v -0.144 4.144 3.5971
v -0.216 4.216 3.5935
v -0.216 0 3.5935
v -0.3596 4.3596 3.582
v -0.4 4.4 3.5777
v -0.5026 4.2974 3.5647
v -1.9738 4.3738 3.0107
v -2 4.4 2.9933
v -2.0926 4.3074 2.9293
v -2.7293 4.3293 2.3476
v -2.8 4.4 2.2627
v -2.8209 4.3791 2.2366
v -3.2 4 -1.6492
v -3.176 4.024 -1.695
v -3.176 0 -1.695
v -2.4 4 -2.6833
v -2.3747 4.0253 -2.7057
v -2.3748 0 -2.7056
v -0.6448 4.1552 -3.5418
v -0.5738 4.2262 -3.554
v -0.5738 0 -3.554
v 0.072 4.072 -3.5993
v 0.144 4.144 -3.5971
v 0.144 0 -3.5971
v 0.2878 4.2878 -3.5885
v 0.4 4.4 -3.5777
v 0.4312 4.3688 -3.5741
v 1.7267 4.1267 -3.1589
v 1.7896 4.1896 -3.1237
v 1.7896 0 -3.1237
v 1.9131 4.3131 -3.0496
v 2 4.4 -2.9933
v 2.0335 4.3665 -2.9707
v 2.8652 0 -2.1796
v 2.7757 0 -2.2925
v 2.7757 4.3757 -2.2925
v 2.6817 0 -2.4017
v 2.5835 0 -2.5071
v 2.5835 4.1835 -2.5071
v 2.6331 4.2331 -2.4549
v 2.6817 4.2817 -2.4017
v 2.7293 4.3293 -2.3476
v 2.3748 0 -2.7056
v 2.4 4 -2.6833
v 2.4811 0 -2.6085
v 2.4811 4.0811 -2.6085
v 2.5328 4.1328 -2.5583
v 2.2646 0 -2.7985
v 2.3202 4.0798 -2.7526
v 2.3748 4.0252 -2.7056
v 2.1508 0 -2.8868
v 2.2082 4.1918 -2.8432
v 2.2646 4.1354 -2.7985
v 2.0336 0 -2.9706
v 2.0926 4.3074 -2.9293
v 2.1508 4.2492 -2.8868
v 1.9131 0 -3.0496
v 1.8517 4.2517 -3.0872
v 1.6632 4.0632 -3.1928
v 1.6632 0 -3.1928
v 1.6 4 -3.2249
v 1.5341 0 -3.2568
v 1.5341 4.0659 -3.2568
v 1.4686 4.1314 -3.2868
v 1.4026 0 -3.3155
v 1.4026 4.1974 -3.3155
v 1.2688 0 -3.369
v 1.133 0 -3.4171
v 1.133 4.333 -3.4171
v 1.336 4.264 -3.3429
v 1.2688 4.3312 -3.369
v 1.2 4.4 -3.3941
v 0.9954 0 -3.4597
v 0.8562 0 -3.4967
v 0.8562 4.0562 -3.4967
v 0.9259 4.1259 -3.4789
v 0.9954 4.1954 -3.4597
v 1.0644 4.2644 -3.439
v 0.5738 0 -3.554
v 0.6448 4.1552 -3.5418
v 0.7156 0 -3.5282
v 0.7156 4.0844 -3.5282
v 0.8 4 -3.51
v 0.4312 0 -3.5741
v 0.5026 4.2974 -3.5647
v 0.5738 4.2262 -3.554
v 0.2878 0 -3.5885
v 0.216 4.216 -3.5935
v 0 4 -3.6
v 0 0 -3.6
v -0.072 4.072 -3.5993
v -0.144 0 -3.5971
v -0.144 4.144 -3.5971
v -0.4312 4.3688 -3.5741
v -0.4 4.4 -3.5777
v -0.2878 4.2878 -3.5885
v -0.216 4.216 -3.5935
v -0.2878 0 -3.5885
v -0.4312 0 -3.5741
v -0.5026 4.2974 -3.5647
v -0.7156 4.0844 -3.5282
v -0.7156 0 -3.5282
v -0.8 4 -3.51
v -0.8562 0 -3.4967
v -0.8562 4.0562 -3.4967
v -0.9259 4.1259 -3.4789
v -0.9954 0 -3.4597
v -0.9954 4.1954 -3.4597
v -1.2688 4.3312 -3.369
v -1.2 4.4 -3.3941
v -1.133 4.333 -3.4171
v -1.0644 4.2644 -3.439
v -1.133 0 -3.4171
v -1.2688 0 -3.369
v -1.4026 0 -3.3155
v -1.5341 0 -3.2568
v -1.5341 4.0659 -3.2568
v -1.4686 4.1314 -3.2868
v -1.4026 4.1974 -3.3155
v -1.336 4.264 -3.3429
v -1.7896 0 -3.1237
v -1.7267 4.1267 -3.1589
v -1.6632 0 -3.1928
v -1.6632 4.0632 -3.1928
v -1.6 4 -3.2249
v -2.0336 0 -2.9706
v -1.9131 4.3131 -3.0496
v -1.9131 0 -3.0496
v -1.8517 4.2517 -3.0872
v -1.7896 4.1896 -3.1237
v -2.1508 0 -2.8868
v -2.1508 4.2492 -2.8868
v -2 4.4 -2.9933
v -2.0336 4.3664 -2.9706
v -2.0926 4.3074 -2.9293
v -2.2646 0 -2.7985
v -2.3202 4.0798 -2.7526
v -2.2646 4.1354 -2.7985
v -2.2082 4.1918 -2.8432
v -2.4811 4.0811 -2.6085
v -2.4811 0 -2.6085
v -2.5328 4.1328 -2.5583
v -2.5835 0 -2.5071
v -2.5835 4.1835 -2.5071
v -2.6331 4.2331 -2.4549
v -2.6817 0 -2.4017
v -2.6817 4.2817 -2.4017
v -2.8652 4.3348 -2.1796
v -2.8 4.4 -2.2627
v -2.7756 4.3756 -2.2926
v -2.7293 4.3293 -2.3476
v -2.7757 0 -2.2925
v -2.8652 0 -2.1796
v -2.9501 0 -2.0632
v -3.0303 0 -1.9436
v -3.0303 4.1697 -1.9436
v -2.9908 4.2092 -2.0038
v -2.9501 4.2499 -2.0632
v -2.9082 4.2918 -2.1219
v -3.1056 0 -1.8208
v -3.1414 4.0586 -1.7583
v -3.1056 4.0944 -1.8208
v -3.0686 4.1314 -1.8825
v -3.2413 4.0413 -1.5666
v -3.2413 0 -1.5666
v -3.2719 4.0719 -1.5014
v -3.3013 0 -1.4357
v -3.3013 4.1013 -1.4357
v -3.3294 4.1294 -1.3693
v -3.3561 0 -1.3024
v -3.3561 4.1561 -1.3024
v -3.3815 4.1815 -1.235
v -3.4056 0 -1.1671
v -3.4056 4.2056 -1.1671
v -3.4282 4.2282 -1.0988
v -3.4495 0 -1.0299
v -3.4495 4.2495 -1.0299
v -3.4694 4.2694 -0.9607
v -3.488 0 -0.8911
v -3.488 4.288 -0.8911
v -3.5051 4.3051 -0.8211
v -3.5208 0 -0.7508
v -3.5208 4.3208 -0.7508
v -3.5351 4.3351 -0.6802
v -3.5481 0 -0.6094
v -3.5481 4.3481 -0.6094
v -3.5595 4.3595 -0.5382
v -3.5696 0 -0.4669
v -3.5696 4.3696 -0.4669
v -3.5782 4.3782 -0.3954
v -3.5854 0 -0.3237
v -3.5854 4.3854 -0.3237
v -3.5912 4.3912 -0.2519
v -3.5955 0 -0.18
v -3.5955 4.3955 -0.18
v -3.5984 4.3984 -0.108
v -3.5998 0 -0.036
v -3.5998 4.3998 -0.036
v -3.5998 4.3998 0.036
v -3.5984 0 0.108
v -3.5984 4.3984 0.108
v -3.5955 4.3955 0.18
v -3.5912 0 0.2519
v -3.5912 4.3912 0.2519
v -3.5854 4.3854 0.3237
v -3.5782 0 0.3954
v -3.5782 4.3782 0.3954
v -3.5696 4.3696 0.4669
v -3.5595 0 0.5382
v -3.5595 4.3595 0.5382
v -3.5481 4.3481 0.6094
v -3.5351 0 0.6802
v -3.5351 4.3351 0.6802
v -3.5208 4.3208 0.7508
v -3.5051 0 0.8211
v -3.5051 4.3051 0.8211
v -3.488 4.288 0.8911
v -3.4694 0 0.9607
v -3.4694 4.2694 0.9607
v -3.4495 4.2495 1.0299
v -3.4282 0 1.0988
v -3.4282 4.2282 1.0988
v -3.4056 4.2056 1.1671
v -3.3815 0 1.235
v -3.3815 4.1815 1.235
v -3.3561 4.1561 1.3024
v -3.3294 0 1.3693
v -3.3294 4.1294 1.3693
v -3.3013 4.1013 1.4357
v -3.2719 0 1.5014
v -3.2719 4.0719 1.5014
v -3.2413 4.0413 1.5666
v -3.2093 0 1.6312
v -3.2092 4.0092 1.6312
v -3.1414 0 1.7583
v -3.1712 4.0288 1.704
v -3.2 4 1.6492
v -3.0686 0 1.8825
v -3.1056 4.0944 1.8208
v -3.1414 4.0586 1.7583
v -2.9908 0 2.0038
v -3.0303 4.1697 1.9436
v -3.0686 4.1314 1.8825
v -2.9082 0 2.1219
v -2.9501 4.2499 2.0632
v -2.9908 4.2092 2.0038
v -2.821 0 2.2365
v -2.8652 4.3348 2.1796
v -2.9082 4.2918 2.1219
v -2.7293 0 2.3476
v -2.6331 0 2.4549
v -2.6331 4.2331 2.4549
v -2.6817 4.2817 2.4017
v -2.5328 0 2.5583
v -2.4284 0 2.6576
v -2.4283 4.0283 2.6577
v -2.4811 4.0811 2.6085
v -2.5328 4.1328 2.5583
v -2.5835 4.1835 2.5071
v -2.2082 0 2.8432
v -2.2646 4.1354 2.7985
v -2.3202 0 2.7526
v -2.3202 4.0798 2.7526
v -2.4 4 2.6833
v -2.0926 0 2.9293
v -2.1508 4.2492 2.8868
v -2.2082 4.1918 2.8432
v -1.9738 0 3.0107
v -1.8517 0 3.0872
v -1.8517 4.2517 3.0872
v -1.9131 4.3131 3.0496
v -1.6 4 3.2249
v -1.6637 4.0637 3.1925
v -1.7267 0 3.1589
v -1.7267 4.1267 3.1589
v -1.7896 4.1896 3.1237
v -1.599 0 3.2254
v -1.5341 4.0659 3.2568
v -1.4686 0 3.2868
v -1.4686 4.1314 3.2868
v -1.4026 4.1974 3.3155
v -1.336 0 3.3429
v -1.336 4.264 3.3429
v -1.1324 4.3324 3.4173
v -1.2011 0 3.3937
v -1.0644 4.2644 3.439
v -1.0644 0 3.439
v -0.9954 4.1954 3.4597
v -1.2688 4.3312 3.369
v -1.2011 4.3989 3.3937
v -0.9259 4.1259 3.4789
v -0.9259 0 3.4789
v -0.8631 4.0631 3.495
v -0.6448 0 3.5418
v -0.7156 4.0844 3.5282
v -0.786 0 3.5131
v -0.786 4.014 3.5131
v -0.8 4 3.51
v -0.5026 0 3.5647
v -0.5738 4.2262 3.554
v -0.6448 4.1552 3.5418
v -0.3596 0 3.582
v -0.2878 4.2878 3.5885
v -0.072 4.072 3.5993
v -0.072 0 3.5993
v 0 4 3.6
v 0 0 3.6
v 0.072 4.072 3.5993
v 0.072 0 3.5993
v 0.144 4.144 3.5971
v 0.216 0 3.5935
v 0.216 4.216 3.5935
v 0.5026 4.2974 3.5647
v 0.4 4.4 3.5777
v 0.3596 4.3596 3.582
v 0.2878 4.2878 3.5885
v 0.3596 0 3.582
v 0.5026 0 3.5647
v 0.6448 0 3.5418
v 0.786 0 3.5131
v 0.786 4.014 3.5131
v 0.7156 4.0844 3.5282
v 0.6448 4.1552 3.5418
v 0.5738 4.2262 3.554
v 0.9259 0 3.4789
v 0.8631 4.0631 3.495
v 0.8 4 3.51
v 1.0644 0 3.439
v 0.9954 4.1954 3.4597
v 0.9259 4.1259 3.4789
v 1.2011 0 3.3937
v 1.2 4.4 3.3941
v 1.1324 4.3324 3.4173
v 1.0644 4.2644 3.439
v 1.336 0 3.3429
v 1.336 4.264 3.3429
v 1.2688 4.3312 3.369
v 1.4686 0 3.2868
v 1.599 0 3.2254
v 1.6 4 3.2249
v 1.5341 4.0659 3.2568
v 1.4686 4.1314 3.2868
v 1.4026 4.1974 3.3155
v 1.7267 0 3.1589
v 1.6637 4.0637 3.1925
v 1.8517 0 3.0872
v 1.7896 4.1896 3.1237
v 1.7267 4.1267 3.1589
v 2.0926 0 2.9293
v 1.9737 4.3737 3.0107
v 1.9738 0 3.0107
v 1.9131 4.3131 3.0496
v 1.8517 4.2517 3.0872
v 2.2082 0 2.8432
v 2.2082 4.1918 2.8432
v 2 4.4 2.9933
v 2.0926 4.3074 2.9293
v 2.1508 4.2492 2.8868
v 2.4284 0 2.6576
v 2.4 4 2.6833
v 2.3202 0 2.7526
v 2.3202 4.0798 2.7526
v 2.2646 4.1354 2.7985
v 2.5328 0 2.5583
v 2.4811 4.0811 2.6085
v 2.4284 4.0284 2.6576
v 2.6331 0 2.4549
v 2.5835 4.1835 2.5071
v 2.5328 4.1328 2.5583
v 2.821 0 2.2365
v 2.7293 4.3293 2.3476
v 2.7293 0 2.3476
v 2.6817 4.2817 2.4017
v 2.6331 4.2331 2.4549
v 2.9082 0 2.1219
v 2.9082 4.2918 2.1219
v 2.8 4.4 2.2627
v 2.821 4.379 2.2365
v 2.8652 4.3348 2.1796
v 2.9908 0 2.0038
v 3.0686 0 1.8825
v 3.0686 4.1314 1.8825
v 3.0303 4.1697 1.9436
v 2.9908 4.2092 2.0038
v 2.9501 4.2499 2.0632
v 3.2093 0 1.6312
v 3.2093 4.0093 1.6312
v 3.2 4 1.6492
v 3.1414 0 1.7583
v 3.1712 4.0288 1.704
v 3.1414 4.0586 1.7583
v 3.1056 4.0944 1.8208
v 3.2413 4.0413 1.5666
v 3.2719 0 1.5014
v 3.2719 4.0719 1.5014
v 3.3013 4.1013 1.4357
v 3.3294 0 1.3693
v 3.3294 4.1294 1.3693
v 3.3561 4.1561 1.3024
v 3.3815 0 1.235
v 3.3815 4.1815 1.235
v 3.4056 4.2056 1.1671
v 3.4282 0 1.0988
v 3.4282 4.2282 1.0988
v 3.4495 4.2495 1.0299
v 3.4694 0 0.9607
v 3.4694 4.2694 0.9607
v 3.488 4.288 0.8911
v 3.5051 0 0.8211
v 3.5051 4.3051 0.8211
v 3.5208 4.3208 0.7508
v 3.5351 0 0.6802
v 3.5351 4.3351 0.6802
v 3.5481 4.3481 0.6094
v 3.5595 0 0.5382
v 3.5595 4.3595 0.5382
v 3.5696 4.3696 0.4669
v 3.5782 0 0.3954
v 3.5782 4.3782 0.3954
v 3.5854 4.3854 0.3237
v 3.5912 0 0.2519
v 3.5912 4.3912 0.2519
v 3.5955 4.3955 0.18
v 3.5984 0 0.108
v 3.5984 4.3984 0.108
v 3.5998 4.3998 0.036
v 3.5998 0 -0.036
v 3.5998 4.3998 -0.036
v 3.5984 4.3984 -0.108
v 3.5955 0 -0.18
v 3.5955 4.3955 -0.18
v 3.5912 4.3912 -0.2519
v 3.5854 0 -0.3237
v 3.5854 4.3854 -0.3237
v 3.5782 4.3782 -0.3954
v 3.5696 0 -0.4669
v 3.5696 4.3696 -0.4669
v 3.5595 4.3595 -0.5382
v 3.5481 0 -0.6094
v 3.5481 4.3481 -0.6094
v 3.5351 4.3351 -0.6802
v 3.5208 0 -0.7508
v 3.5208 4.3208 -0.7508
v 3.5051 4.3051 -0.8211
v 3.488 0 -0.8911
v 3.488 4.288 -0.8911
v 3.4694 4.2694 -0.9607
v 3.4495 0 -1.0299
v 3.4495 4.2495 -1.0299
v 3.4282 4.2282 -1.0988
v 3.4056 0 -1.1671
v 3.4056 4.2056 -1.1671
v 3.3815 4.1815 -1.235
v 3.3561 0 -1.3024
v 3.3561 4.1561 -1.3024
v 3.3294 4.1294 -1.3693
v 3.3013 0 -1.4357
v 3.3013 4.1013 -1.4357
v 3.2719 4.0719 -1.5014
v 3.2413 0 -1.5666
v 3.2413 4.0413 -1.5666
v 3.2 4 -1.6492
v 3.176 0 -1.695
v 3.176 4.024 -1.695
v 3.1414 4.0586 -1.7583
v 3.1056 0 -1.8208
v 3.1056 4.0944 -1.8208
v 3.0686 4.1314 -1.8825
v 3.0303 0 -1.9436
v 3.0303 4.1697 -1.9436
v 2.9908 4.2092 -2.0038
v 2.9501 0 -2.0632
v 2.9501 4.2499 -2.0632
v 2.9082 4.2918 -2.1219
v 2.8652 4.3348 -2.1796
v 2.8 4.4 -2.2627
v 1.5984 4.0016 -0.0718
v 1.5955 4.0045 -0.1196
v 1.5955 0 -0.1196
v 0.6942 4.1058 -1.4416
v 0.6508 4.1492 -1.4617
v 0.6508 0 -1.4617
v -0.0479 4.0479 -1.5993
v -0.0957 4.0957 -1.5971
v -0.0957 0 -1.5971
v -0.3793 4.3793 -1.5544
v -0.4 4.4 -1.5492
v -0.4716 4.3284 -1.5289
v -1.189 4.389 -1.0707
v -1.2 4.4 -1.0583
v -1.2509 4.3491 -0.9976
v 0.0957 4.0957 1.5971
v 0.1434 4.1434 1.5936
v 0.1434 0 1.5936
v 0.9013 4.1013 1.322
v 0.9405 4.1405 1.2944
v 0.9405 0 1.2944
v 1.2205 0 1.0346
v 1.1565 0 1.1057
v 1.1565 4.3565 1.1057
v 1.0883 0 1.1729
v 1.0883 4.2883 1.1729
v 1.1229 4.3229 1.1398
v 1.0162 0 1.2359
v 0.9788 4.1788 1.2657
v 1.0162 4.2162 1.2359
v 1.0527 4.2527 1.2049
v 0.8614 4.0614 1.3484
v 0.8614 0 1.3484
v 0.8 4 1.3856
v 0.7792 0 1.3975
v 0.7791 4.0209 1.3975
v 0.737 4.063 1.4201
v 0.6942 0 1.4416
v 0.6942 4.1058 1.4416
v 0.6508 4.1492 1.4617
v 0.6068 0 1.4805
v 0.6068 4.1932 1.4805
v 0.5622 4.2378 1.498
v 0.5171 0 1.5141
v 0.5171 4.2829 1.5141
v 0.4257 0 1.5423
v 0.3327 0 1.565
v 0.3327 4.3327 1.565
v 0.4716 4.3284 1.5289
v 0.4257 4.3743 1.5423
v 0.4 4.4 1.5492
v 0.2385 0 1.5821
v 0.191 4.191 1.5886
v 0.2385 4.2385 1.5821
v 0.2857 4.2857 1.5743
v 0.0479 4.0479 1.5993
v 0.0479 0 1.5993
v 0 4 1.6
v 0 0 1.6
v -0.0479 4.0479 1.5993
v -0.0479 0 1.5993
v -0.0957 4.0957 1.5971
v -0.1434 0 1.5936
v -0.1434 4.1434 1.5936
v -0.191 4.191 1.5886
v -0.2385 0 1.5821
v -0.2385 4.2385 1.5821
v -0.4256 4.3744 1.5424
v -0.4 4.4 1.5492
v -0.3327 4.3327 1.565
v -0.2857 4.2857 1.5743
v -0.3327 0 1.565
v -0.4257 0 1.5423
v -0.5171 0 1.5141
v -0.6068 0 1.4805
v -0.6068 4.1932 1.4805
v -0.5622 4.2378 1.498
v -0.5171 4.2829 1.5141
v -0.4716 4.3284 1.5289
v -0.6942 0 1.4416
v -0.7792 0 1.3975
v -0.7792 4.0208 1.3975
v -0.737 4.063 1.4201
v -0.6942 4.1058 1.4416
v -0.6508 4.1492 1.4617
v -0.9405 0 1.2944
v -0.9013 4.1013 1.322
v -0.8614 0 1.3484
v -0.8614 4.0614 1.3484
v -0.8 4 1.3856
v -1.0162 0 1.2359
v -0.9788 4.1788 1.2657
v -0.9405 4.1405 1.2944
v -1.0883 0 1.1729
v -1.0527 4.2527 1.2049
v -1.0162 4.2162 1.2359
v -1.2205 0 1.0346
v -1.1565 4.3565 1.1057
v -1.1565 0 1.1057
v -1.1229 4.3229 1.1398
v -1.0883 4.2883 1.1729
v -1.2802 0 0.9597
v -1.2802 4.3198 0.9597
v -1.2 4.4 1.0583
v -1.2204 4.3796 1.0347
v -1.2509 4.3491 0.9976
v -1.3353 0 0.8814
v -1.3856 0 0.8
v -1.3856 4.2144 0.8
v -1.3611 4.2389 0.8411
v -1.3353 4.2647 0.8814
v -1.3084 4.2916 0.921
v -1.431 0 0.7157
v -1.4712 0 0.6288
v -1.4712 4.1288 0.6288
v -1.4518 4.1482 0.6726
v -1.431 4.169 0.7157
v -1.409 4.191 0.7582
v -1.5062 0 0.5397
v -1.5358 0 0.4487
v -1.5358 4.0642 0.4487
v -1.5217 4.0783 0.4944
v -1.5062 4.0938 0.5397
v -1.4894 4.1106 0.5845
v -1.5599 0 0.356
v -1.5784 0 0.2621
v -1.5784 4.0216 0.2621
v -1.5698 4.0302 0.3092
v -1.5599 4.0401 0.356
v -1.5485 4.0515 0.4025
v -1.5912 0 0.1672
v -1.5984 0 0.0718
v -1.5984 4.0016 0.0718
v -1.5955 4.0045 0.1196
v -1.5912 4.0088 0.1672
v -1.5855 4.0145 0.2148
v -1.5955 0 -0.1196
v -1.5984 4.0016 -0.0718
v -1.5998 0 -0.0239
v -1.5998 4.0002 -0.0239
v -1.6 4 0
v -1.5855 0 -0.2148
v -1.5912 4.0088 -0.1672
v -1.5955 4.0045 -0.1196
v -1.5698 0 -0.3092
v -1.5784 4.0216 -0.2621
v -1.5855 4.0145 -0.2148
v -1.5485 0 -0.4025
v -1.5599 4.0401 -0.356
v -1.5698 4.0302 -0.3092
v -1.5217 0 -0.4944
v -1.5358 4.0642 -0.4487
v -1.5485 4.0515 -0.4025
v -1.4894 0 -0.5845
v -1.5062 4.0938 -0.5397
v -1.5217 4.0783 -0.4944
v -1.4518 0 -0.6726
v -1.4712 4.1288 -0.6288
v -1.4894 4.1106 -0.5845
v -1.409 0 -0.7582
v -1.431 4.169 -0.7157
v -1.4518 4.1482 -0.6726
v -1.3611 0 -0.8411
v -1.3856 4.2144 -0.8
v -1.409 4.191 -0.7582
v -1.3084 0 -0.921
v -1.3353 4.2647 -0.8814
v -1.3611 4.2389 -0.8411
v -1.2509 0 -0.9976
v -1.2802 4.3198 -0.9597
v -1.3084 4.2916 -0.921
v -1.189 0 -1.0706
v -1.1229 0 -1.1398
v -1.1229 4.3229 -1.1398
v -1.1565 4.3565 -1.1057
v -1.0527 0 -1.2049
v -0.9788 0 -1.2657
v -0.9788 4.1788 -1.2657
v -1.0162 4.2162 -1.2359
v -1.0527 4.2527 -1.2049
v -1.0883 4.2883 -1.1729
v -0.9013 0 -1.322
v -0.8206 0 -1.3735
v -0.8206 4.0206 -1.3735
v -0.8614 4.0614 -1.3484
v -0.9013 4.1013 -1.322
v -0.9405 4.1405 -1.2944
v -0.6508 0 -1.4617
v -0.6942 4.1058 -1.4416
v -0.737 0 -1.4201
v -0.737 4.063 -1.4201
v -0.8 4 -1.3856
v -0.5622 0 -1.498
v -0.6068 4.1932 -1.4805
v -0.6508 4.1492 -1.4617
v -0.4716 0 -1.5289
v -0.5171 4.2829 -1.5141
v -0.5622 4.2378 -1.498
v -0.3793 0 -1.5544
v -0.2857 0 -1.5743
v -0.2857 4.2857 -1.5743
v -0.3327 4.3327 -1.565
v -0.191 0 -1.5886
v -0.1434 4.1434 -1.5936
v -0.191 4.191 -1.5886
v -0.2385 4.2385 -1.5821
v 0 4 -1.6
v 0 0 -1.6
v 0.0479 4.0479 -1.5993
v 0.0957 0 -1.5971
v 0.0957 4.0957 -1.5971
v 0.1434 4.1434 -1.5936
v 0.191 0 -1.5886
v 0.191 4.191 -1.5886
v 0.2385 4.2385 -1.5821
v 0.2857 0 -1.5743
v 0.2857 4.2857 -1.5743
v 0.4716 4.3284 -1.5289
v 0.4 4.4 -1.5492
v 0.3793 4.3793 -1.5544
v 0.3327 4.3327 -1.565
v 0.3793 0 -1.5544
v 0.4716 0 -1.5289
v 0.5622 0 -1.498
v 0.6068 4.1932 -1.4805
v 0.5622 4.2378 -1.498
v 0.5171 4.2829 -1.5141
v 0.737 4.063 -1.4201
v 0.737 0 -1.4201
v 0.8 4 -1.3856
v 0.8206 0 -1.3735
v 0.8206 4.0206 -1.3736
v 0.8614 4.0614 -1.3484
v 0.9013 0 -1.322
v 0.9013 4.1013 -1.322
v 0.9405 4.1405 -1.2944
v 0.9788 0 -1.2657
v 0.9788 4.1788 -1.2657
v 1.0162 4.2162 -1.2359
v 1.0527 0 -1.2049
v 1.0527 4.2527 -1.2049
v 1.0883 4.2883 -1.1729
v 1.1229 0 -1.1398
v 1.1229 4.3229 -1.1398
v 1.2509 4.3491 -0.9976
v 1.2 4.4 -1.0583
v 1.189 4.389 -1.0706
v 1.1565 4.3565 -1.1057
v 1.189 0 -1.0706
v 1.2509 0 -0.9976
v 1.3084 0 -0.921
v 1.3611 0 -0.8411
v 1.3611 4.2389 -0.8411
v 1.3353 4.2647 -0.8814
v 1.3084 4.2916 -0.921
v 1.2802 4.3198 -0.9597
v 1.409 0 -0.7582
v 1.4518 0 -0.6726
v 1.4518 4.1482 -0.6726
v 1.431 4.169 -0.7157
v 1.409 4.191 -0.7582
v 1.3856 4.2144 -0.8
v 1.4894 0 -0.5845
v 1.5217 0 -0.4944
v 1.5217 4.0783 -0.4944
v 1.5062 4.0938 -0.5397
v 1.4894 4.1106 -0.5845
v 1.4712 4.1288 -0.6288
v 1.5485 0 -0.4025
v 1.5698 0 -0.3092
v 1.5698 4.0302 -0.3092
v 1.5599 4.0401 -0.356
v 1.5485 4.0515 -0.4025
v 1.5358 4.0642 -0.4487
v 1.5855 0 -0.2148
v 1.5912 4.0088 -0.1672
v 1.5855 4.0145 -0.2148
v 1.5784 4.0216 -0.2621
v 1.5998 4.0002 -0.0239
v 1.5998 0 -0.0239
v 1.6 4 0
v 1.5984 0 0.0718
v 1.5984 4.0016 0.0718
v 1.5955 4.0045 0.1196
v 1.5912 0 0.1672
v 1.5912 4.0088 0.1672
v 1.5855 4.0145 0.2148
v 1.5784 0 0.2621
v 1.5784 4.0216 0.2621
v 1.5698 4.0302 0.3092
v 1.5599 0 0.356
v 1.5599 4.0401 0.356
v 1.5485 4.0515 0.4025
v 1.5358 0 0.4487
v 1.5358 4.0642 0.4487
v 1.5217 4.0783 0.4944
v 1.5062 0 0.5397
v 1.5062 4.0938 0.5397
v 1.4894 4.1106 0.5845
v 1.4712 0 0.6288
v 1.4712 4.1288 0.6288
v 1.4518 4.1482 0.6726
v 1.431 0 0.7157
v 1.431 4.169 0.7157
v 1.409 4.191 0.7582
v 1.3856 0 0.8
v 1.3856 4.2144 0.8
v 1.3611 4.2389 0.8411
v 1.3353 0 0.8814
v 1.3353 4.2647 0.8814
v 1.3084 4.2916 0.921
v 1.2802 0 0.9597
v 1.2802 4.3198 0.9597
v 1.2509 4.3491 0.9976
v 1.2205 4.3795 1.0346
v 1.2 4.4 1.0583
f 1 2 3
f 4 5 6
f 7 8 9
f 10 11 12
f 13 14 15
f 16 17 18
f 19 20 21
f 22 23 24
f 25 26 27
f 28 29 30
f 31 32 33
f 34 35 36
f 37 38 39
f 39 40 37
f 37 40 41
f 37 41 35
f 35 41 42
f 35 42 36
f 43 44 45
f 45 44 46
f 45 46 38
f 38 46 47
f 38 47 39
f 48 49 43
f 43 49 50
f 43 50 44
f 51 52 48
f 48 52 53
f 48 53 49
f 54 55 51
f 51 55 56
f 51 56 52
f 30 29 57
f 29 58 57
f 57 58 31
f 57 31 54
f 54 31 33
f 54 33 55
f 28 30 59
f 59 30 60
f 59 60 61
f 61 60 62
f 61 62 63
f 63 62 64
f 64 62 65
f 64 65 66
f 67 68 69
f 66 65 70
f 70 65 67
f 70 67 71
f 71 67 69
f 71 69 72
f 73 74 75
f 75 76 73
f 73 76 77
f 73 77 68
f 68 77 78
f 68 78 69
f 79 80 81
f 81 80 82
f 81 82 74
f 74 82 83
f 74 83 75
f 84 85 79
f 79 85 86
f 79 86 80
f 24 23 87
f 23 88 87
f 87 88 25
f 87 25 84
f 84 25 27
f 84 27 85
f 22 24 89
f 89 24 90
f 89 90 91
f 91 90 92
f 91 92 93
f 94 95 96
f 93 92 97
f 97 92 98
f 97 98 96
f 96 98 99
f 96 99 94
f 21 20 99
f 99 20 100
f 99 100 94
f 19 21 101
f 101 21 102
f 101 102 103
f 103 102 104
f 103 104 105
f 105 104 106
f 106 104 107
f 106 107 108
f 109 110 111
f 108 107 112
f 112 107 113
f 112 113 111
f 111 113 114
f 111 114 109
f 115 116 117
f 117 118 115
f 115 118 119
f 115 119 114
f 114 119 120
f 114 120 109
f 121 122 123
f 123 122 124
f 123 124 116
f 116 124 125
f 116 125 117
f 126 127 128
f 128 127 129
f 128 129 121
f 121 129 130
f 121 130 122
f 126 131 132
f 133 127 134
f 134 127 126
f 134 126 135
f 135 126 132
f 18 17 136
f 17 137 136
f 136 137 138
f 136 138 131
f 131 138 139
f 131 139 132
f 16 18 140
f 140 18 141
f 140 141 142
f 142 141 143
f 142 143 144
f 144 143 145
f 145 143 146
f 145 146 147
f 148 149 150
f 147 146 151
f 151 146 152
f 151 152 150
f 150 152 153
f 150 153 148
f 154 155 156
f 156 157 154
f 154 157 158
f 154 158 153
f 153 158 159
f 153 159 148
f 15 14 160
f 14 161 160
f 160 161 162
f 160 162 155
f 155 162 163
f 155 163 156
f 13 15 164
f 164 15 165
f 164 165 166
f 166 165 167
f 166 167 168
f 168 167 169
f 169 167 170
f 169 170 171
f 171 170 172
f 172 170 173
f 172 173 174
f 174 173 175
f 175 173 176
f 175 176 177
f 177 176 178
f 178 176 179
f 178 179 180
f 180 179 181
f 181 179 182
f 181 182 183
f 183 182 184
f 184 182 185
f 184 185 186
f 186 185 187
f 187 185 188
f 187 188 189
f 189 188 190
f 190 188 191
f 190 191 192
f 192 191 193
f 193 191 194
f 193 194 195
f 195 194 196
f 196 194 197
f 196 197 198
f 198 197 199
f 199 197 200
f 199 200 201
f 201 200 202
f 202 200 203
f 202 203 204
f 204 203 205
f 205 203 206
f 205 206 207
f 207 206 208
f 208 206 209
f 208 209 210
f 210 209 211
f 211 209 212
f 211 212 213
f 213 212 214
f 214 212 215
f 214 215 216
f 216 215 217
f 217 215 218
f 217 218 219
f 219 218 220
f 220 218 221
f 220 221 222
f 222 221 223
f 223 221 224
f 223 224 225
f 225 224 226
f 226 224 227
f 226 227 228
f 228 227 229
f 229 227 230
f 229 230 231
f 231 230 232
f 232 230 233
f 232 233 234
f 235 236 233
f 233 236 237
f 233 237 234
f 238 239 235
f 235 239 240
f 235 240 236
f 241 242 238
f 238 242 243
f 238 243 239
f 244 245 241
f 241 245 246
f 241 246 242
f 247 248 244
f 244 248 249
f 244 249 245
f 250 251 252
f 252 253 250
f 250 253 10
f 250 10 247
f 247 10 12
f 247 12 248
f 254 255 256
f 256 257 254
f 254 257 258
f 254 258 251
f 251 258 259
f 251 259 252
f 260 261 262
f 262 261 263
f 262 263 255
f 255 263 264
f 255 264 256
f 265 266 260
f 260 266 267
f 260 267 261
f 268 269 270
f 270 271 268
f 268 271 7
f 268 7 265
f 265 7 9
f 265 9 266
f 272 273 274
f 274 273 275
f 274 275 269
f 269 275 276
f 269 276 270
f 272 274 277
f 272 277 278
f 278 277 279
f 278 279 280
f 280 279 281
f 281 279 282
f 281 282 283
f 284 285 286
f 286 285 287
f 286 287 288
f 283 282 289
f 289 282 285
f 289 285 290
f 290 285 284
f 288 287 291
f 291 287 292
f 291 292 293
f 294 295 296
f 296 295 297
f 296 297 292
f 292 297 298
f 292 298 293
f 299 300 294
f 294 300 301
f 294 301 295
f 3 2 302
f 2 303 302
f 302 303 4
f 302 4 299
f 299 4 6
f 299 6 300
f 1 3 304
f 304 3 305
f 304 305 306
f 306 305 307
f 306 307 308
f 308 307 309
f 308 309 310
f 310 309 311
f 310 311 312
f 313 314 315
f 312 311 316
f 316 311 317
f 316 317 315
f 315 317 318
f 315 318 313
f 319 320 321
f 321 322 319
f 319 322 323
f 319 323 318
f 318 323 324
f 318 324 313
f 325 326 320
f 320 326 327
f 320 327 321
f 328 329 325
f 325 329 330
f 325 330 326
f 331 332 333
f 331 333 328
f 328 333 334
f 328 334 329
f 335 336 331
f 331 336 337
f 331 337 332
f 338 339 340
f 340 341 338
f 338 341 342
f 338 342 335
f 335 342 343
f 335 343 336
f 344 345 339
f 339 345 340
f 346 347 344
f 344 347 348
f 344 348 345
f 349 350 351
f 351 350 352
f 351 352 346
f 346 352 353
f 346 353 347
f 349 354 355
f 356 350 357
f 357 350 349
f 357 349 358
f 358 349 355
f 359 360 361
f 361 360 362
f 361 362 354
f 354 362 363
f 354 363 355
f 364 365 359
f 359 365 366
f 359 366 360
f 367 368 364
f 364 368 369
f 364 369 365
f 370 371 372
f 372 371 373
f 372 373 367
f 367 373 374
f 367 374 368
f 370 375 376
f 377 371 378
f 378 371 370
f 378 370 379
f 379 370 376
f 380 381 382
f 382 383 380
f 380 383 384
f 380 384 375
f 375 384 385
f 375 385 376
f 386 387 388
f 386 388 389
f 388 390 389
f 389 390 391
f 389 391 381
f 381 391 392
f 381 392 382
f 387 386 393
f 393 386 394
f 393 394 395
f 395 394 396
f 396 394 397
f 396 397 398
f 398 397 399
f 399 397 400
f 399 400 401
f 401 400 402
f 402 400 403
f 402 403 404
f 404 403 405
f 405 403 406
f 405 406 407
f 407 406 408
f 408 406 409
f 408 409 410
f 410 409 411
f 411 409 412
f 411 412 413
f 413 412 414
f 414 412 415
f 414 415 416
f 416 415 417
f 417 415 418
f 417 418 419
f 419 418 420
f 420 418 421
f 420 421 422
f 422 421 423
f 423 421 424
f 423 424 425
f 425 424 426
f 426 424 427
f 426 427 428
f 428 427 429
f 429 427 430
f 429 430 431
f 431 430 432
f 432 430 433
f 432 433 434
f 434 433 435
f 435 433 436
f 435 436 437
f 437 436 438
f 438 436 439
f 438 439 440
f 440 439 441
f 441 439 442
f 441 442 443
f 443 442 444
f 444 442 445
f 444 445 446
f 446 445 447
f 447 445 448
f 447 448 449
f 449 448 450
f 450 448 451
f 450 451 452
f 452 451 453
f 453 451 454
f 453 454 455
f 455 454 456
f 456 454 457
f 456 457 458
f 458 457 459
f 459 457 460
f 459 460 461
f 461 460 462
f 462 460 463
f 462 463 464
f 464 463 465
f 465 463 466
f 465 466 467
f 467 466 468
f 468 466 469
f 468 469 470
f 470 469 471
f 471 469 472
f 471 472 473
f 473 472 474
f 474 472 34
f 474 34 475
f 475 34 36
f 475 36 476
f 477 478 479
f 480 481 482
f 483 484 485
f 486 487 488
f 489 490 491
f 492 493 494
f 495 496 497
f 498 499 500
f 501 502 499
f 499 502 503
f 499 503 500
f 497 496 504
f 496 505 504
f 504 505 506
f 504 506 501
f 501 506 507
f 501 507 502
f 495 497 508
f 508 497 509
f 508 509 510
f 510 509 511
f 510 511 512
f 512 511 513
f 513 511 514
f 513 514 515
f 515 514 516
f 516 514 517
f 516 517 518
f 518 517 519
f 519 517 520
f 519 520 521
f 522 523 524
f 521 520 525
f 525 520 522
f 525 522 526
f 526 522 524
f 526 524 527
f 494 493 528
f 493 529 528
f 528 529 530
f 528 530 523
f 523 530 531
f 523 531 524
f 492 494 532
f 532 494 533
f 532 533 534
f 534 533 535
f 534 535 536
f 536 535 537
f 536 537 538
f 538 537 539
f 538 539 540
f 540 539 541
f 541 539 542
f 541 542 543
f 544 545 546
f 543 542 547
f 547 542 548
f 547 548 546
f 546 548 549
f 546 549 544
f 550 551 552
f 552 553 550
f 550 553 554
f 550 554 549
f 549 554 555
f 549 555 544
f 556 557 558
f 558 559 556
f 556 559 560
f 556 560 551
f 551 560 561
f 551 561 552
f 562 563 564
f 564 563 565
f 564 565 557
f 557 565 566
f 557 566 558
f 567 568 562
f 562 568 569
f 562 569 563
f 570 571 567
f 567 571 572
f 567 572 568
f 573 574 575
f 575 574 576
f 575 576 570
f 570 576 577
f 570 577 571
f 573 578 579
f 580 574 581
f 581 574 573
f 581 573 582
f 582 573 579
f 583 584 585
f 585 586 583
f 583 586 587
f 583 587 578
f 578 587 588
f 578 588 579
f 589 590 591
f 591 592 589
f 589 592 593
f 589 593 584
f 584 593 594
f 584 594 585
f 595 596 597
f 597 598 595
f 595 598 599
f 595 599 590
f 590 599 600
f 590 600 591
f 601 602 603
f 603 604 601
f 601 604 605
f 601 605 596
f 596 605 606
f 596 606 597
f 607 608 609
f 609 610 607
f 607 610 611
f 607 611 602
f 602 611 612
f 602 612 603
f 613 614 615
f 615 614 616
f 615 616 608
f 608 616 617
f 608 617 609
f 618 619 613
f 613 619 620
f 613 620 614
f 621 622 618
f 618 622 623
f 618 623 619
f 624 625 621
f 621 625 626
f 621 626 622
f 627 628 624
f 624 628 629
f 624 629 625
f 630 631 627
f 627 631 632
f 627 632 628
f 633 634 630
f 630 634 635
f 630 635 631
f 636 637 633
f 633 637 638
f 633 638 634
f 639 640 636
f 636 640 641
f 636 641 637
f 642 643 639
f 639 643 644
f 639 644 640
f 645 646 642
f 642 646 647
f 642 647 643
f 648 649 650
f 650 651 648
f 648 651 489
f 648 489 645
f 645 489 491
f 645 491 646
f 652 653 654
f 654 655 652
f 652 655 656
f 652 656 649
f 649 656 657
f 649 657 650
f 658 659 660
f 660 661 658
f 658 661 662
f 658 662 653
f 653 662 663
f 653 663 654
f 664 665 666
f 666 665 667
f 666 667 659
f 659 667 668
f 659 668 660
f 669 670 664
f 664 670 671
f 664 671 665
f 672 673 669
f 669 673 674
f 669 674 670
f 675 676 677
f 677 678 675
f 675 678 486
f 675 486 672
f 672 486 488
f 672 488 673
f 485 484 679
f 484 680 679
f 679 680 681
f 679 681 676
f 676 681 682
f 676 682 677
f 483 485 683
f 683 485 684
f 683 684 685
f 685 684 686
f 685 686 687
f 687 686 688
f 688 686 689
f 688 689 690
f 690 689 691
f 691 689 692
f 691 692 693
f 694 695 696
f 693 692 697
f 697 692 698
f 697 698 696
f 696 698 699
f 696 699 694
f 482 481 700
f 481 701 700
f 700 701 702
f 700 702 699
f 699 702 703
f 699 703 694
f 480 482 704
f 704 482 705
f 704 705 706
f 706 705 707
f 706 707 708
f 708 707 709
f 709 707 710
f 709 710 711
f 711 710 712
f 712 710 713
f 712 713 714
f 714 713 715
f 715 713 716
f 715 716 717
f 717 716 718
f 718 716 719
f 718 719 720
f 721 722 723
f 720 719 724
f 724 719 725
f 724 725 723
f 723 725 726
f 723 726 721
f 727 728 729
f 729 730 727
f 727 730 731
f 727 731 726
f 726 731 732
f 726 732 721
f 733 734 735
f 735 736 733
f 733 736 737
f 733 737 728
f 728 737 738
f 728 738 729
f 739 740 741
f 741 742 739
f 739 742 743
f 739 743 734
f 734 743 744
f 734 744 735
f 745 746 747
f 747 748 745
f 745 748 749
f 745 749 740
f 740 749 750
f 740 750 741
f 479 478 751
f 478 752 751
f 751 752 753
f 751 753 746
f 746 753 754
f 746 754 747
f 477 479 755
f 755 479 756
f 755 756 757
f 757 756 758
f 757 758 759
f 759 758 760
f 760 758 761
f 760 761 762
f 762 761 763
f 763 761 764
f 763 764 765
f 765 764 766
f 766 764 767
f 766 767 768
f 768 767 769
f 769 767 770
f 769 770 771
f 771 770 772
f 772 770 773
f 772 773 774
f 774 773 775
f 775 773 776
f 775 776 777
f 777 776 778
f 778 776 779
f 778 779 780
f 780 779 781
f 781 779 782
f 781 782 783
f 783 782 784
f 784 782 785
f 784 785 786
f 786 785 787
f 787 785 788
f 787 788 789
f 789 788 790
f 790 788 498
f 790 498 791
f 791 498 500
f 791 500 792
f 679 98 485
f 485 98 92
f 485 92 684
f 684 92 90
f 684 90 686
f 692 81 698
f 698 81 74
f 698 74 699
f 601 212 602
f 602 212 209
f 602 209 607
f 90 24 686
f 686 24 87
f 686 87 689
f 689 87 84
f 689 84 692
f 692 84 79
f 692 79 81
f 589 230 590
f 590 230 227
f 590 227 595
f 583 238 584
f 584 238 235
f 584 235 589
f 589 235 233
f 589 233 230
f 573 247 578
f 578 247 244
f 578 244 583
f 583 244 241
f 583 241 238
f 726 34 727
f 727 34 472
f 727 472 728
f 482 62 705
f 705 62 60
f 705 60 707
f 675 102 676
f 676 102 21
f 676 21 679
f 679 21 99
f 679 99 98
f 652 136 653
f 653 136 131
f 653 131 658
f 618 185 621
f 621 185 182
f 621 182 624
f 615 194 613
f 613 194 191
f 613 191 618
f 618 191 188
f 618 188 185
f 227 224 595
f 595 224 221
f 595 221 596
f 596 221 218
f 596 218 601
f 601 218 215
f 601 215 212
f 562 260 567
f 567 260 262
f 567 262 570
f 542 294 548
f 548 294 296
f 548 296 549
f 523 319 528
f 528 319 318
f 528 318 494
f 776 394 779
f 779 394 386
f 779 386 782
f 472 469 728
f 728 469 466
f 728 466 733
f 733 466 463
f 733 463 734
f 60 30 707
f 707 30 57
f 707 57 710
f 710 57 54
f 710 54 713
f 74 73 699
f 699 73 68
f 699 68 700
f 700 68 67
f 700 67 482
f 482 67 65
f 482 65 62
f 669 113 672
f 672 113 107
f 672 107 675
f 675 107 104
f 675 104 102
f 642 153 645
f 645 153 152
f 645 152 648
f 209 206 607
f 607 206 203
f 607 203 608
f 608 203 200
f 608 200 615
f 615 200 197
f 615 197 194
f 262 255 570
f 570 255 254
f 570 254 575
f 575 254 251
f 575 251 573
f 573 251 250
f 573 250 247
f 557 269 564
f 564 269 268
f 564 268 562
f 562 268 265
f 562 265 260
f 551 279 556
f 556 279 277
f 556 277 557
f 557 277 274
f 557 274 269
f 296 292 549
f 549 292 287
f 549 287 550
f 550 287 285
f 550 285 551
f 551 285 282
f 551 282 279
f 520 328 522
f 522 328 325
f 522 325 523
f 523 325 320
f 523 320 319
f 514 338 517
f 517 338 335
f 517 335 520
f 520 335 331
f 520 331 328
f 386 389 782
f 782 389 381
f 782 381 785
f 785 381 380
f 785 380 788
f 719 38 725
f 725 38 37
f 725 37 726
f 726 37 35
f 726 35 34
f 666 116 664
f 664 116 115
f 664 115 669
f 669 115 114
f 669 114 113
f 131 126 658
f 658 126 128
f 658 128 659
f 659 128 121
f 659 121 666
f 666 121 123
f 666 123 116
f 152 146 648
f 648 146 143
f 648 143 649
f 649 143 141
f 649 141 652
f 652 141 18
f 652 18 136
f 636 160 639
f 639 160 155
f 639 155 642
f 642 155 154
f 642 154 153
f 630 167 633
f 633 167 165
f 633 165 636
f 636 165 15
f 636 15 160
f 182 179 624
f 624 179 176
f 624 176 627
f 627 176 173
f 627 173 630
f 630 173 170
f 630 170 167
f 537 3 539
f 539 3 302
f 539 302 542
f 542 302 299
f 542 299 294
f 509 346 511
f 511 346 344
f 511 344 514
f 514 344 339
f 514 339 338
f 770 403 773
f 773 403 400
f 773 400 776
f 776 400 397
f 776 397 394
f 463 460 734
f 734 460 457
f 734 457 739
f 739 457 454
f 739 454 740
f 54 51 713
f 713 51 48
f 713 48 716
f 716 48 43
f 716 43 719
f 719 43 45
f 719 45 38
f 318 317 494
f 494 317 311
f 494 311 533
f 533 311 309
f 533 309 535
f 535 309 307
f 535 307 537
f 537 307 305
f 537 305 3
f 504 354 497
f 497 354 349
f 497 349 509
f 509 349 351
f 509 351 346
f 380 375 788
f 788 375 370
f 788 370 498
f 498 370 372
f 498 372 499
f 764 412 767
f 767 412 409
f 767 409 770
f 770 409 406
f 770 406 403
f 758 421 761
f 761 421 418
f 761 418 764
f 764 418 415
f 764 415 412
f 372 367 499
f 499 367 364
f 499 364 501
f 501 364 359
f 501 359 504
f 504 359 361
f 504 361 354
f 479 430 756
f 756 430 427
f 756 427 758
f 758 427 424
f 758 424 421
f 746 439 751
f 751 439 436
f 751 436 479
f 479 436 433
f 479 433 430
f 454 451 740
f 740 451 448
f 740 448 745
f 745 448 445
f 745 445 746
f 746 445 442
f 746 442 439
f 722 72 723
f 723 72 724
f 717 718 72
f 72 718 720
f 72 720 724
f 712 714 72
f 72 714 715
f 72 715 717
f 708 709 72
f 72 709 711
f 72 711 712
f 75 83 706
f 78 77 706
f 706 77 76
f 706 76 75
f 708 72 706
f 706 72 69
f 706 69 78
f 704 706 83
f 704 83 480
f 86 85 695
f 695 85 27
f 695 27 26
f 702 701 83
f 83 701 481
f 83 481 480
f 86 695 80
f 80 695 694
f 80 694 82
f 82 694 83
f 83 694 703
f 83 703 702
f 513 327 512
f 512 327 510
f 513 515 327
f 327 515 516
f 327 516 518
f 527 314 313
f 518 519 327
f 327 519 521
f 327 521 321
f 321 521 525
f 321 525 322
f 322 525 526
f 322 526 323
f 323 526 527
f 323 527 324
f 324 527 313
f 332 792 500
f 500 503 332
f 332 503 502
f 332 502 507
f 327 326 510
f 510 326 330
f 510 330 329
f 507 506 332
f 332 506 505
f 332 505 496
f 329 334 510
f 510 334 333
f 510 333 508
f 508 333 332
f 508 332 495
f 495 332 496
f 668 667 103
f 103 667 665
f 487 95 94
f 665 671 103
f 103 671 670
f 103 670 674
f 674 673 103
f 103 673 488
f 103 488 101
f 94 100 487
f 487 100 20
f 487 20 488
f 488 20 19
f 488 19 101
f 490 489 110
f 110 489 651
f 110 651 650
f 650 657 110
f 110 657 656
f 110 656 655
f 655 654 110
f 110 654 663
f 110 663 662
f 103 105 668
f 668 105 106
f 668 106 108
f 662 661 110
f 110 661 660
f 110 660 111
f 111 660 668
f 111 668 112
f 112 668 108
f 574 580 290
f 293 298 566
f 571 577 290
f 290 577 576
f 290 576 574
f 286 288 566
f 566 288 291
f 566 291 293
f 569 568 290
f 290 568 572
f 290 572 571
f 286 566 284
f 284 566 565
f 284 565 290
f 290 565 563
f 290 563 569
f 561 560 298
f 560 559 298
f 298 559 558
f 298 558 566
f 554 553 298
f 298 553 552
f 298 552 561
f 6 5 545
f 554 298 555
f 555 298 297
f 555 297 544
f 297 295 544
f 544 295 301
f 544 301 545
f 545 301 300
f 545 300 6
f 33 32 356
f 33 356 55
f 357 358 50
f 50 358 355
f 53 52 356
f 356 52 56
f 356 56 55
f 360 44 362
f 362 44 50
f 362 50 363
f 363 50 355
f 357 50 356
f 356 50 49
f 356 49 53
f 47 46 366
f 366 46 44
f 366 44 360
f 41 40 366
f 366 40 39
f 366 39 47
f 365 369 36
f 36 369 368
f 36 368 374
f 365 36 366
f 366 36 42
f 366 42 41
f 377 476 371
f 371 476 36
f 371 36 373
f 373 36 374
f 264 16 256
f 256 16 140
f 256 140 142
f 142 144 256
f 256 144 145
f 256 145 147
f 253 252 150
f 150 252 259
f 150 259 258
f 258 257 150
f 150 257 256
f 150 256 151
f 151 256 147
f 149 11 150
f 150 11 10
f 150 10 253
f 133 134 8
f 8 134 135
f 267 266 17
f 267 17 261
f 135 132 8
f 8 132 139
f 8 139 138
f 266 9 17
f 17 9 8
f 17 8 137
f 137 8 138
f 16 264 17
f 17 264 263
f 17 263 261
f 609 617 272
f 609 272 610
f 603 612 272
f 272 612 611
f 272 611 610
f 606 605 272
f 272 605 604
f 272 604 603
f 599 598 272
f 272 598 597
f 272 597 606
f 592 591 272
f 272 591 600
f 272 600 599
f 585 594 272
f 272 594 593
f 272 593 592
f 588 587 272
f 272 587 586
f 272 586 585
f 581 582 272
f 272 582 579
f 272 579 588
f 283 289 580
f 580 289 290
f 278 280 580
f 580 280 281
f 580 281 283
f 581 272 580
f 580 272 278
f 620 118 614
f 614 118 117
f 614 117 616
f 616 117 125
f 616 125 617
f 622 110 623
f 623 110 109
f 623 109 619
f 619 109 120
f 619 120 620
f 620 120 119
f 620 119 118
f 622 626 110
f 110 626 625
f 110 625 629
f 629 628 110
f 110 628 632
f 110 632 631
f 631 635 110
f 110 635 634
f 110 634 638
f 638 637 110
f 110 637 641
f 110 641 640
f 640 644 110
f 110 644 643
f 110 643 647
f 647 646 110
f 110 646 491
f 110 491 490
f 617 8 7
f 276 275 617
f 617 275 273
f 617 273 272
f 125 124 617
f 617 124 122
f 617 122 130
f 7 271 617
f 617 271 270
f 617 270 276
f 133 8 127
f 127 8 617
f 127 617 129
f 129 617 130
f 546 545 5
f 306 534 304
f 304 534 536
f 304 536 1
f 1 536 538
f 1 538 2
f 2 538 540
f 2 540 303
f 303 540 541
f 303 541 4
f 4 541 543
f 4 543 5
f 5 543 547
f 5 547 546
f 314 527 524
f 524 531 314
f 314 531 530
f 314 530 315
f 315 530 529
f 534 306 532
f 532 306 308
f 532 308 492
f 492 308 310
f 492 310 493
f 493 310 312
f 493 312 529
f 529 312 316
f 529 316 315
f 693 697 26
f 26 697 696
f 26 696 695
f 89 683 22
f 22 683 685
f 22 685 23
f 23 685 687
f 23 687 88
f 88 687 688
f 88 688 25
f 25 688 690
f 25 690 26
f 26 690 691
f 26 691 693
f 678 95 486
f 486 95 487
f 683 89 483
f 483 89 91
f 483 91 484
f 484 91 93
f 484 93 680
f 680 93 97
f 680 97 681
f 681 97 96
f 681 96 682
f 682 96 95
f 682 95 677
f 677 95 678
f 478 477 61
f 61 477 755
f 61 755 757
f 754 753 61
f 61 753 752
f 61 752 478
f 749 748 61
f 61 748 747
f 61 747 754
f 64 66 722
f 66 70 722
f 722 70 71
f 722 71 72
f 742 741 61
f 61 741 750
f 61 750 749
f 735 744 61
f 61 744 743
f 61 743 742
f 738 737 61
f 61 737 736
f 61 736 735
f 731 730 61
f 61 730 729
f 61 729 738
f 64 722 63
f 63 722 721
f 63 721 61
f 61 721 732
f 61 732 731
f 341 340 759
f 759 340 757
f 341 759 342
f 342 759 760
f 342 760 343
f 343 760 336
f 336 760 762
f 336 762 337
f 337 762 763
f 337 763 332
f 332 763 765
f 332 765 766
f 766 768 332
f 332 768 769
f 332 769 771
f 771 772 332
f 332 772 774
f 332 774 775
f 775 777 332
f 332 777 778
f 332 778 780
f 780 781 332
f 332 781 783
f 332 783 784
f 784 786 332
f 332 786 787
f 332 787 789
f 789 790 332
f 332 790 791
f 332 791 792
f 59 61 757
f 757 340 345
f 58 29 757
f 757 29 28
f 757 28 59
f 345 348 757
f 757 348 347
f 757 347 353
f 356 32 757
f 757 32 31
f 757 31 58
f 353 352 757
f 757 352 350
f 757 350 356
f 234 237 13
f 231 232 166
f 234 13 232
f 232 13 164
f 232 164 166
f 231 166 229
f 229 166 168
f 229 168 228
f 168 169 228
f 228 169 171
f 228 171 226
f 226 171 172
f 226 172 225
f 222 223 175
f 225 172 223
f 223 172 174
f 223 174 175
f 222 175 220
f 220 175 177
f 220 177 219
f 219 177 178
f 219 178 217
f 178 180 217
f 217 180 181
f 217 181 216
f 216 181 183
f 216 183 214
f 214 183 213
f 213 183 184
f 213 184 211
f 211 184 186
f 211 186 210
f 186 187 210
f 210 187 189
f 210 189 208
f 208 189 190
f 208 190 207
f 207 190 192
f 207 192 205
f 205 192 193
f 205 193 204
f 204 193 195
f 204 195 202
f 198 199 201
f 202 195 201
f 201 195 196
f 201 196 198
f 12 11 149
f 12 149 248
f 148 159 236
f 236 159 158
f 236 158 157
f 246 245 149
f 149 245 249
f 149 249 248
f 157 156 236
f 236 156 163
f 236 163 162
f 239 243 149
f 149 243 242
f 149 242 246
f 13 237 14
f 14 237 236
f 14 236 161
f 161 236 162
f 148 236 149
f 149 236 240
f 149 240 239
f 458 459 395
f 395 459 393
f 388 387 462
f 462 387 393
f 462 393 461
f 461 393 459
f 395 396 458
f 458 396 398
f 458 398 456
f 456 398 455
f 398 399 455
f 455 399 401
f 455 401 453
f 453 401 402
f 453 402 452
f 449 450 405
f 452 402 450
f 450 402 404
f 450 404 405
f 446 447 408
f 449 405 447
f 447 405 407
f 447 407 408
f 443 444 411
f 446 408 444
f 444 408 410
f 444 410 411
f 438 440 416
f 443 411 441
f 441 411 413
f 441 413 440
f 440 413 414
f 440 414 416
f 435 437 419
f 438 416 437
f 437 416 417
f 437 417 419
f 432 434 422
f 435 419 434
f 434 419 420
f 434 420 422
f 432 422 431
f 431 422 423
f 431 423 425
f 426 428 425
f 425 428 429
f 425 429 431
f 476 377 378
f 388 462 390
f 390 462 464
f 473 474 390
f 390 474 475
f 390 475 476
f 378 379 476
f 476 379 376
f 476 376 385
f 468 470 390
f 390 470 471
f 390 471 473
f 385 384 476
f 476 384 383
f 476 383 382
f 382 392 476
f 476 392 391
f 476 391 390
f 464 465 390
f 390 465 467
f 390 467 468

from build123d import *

# Parameters (mm, degrees)
SKETCH_1_R               = 3.6
SKETCH_1_R_2             = 1.6
EXTRUDE_1_DEPTH          = 4.4
CUT_EXTRUDE_1_DEPTH      = 10
CUT_EXTRUDE_1_DEPTH_BACK = 10


with BuildPart() as part:
    # 草图1 → 凸台-拉伸1 (new body)
    with BuildSketch(Plane(origin=(0, 0, 0), x_dir=(1, 0, 0), z_dir=(0, 1, 0))):
        Circle(SKETCH_1_R)
        Circle(SKETCH_1_R_2, mode=Mode.SUBTRACT)
    extrude(amount=EXTRUDE_1_DEPTH)

    # 草图2 → 切除-拉伸1 (cut, two sides: drawn at the far end of the back side and taken through both)
    with BuildSketch(Plane.XY.offset(-CUT_EXTRUDE_1_DEPTH_BACK)):
        Polygon((-2.8, 4.4), (-3.6, 4.4), (-3.2, 4), align=None)
        Polygon((3.6, 4.4), (2.8, 4.4), (3.2, 4), align=None)
        Polygon((2.8, 4.4), (2, 4.4), (2.4, 4), align=None)
        Polygon((2, 4.4), (1.2, 4.4), (1.6, 4), align=None)
        Polygon((1.2, 4.4), (0.4, 4.4), (0.8, 4), align=None)
        Polygon((0.4, 4.4), (-0.4, 4.4), (0, 4), align=None)
        Polygon((-0.4, 4.4), (-1.2, 4.4), (-0.8, 4), align=None)
        Polygon((-1.2, 4.4), (-2, 4.4), (-1.6, 4), align=None)
        Polygon((-2, 4.4), (-2.8, 4.4), (-2.4, 4), align=None)
    extrude(amount=CUT_EXTRUDE_1_DEPTH + CUT_EXTRUDE_1_DEPTH_BACK, mode=Mode.SUBTRACT)


solid = part.part
